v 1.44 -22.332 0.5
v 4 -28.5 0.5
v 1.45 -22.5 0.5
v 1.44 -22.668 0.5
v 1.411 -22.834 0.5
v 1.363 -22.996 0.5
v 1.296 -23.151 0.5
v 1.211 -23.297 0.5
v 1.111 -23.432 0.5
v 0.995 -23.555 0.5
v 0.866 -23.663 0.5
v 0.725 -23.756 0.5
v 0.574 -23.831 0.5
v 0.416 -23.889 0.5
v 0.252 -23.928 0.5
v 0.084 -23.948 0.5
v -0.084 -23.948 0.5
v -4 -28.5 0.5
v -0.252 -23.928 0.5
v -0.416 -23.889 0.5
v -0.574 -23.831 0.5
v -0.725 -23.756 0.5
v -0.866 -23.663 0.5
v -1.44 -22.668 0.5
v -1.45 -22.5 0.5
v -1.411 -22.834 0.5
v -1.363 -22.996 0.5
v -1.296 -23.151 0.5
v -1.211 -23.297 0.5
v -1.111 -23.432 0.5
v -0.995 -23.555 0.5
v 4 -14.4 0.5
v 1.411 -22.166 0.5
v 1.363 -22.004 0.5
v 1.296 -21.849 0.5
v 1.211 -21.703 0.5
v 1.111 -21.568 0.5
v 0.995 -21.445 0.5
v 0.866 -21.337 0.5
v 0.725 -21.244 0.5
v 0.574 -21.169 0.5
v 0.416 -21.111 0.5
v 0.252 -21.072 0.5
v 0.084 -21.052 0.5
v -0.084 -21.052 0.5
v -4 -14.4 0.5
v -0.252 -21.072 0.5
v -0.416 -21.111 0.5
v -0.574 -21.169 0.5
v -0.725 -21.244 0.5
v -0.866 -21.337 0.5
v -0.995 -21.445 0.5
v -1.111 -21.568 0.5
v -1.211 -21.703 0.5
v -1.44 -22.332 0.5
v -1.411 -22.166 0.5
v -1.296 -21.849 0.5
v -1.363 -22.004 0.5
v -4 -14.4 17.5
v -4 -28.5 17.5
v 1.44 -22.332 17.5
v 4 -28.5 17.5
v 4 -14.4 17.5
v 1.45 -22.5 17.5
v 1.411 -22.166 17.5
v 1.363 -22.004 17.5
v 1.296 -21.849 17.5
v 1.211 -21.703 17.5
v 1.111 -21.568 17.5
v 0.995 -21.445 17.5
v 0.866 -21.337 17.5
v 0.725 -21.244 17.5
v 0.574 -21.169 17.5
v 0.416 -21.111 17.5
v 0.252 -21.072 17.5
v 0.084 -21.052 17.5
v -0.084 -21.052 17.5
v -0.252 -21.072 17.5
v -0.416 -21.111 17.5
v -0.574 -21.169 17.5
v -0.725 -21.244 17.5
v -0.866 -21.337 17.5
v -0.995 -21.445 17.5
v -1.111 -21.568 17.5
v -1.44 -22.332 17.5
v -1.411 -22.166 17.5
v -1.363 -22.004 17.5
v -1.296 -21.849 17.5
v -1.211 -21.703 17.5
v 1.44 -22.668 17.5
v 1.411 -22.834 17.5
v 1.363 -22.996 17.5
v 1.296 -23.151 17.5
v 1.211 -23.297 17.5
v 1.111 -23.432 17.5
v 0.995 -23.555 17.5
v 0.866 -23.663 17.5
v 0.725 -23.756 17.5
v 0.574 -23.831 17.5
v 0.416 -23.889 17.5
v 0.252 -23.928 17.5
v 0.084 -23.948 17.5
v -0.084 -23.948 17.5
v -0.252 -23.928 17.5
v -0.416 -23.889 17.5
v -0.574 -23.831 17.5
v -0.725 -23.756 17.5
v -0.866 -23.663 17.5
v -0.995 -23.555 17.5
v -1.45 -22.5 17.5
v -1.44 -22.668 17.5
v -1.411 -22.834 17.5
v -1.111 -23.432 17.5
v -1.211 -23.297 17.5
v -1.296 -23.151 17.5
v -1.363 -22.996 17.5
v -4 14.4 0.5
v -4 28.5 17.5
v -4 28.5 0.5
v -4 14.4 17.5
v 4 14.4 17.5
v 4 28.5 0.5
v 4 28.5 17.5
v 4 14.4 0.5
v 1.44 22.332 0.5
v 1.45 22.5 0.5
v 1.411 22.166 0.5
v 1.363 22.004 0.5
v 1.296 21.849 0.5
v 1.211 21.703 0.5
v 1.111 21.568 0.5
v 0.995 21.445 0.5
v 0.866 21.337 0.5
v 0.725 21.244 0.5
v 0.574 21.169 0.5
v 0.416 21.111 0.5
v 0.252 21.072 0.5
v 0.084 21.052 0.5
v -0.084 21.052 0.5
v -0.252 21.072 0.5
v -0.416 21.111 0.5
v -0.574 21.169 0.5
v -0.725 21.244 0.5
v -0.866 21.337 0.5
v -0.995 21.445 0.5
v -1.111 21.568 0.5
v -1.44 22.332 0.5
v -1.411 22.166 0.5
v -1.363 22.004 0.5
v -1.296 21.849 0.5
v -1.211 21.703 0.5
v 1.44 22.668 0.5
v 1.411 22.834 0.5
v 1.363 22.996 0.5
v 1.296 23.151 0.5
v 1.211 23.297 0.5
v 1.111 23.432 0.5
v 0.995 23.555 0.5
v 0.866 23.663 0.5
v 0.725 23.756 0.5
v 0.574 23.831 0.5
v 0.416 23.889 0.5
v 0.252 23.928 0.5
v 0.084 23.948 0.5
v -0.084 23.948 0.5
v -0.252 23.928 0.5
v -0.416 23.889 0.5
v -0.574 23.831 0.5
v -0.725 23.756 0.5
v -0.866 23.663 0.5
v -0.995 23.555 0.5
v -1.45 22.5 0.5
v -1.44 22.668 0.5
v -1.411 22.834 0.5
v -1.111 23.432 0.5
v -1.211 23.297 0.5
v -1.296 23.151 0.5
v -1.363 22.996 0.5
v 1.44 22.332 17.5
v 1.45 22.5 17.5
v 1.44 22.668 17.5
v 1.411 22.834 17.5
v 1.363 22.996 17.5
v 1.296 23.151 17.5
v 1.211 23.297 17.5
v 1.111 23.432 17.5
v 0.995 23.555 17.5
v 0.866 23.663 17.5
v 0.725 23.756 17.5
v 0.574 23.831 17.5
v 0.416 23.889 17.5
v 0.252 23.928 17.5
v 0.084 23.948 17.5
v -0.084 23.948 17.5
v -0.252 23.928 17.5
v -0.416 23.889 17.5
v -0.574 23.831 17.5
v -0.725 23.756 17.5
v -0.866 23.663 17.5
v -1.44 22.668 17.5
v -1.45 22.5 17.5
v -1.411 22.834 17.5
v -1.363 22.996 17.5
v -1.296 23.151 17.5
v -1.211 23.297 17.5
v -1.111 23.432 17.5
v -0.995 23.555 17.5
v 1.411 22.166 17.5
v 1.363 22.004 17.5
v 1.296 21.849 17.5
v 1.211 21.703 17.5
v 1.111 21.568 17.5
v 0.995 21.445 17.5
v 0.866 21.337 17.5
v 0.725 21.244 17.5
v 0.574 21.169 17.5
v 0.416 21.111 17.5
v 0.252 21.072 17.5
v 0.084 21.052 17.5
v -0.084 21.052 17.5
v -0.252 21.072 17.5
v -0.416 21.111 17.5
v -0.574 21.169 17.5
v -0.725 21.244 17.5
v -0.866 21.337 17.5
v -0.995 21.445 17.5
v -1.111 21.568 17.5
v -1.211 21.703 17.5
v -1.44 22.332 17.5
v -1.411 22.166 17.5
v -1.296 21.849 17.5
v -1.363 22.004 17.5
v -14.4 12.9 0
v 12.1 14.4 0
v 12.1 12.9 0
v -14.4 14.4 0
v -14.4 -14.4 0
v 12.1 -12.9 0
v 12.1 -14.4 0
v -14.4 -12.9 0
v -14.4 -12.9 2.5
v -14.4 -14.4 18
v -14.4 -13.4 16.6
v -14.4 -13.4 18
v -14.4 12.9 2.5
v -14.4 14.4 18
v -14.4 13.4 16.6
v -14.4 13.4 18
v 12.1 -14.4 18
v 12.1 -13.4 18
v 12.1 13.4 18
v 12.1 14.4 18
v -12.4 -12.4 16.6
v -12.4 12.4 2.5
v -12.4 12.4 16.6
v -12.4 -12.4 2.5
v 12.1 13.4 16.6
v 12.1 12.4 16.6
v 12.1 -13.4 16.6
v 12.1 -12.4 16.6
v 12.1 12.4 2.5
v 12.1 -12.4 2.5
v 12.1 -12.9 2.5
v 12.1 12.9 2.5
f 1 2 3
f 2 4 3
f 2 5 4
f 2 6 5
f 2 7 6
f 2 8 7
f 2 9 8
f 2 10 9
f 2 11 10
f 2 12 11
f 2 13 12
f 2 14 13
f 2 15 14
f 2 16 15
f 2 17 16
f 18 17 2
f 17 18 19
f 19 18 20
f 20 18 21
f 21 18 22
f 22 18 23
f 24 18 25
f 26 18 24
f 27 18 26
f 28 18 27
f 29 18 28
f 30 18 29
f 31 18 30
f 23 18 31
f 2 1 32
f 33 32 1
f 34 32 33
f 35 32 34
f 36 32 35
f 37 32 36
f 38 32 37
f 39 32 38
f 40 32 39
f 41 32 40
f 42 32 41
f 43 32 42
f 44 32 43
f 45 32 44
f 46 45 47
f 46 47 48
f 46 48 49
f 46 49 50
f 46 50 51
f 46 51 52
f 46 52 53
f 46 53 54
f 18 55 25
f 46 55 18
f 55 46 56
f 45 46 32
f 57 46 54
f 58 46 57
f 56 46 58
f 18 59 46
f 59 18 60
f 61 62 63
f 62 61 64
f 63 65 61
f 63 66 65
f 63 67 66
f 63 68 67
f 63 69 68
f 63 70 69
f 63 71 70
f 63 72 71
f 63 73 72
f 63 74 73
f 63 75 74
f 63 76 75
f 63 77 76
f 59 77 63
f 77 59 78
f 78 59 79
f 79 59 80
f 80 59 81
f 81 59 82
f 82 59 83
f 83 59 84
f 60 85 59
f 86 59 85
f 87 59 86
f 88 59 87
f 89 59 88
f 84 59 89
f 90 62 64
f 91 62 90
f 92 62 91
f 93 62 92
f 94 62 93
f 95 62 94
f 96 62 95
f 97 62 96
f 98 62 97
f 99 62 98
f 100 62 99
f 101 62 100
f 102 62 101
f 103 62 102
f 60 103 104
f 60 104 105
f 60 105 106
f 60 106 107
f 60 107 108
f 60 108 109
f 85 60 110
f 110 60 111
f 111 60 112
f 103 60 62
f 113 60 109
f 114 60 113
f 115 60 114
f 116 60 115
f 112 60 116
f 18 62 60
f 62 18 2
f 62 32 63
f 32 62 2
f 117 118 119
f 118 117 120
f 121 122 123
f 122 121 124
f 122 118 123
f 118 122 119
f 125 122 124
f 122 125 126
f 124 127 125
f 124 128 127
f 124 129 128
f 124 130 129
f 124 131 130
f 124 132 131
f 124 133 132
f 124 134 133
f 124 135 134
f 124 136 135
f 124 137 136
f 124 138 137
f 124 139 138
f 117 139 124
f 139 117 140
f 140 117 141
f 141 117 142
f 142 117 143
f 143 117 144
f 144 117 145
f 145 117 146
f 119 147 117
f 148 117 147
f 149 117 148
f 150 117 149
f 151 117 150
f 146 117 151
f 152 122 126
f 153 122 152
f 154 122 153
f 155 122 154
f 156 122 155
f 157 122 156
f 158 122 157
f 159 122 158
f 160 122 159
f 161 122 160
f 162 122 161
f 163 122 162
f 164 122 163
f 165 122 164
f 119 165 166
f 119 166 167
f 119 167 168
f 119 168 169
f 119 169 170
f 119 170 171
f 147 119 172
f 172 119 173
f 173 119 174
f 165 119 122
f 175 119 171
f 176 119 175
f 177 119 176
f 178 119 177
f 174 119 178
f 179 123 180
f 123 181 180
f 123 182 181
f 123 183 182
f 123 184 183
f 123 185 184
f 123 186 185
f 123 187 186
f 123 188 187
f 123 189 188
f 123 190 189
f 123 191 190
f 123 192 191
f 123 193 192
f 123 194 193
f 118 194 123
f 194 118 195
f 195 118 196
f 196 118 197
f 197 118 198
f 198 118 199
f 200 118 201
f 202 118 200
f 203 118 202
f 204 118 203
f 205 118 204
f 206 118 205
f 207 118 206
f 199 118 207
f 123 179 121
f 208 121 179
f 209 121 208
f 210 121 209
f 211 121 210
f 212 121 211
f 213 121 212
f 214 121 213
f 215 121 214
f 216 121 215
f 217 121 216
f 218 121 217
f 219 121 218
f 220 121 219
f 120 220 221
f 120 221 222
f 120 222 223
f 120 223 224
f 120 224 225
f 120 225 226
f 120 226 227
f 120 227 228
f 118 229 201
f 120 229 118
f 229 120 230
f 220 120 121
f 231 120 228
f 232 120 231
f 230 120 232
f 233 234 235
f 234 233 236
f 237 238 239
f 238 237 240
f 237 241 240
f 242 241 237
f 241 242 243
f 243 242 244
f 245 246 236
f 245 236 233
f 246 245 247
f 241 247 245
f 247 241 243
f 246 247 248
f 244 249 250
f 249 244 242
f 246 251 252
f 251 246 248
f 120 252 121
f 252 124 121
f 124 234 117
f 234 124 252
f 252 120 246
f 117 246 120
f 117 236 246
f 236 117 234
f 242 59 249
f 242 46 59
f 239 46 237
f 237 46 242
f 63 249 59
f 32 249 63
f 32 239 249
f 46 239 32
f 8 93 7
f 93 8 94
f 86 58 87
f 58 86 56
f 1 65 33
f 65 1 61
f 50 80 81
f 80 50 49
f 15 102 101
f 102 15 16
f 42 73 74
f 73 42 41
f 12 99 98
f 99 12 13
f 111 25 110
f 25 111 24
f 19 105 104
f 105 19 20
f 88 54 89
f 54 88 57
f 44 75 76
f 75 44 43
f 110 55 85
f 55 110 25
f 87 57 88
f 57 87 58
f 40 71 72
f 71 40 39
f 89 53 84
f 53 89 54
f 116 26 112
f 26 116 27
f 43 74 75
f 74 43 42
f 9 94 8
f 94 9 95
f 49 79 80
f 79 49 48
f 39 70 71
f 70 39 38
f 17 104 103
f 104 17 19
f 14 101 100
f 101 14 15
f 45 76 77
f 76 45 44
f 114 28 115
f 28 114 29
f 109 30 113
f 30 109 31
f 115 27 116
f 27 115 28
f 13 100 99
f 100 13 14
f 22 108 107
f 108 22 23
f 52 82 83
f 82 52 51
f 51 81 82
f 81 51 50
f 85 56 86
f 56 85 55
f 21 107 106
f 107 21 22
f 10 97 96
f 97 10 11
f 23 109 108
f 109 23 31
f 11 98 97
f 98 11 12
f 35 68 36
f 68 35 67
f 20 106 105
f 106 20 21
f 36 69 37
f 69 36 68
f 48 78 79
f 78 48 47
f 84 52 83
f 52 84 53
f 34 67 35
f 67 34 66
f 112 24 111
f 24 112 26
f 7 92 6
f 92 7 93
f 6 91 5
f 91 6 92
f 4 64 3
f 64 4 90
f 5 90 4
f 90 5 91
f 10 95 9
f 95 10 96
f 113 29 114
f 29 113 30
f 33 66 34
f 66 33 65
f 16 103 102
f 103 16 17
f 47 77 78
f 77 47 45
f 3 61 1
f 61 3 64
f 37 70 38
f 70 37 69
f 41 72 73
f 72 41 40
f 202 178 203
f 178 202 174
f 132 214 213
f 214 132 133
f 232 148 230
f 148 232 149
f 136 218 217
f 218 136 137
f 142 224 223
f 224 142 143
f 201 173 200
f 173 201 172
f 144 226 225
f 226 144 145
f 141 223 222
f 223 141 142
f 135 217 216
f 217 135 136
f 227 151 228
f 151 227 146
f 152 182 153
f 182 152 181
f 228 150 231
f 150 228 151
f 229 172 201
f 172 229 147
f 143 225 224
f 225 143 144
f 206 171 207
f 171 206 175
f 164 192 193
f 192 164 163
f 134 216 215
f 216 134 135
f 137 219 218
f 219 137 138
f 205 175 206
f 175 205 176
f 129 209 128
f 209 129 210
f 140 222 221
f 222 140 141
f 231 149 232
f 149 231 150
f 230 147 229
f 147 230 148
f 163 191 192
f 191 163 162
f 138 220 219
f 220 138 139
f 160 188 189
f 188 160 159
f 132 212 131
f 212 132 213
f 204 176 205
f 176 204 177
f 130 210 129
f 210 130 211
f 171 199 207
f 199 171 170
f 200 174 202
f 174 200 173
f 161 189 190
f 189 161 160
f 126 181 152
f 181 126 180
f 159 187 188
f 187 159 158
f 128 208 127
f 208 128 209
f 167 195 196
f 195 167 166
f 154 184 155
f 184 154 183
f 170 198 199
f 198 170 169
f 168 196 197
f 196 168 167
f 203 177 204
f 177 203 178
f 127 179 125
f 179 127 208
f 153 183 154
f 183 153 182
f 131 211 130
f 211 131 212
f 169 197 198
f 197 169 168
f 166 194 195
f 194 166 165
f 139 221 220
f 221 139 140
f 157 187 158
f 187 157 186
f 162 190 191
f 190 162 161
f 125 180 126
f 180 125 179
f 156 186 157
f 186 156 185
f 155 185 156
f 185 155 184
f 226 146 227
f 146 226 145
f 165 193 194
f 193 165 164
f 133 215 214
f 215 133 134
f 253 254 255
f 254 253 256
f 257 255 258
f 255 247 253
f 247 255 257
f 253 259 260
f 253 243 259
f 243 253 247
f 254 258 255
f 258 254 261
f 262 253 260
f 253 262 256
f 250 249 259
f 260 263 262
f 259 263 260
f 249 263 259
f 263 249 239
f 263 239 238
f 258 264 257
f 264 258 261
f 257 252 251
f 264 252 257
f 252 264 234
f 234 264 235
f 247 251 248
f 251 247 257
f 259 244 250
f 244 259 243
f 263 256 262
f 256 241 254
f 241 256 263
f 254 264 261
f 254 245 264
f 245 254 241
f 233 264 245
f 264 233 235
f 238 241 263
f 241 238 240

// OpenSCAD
// Printable front ATOM/camera holder only.

use <chassis_n20.scad>;

render_chassis_variant("printable_front_sensor_mount", 12);
